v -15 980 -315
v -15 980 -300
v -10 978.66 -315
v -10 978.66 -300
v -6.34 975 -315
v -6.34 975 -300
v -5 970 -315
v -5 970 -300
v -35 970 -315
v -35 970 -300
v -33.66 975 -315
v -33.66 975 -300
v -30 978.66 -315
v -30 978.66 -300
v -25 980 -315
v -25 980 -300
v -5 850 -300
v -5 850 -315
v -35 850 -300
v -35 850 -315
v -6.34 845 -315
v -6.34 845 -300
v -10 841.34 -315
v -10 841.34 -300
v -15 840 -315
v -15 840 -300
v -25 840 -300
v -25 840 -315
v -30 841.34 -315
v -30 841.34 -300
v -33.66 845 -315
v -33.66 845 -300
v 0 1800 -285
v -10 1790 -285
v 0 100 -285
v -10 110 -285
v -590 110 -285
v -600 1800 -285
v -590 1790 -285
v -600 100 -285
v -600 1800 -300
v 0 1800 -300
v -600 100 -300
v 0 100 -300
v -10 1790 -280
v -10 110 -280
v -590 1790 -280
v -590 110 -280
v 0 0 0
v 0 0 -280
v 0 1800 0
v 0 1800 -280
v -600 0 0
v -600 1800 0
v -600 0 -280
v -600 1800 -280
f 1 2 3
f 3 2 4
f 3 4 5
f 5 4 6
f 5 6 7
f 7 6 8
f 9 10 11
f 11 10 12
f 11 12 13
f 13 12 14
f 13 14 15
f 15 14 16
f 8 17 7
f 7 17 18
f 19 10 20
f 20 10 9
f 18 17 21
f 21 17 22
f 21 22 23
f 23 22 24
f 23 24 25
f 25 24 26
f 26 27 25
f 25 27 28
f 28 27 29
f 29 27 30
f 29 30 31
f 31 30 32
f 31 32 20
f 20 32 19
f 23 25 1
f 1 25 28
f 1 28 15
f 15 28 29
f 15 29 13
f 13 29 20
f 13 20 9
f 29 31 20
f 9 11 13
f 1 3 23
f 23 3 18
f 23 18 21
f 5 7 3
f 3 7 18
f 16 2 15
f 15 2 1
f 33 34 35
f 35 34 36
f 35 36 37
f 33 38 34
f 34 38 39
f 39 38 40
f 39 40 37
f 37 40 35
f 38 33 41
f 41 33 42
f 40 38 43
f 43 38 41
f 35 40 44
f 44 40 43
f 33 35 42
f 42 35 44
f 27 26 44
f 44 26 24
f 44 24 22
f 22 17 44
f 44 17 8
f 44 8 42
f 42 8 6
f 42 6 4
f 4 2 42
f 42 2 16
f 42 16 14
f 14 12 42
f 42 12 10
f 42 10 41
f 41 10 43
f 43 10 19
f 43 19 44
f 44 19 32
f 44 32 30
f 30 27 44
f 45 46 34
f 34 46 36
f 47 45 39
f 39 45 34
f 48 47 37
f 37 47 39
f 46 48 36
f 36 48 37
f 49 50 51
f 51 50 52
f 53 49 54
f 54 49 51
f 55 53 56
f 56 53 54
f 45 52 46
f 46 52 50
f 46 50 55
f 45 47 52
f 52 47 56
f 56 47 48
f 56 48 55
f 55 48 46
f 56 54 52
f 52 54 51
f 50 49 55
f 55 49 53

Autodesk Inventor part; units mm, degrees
ref_plane "YZ Plane" through (0, 0, 0) normal (1, 0, 0) x (0, 1, 0)
ref_plane "XZ Plane" through (0, 0, 0) normal (0, 1, 0) x (-1, 0, 0)
ref_plane "XY Plane" through (0, 0, 0) normal (0, 0, 1) x (1, 0, 0)
sketch "Skizze1" plane through (0, 0, 0) normal (0, 1, 0) x (-1, 0, 0)
  line L0 (0, 0) -> (600, 0)
  line L1 (600, 0) -> (600, -280)
  line L2 (600, -280) -> (0, -280)
  line L3 (0, -280) -> (0, 0)
  dimension "d0" = 600
  dimension "d1" = 280
extrude "Extrusion1" add sketch "Skizze1" along normal blind 1800
sketch "Skizze2" plane through (0, 0, -280) normal (0, 0, -1) x (-1, 0, 0)
  line L0 (10, 1790) -> (590, 1790)
  line L1 (590, 1790) -> (590, 110)
  line L2 (590, 110) -> (10, 110)
  line L3 (10, 110) -> (10, 1790)
  line L4 (0, 0) -> (0, 1800) projected
  line L5 (600, 0) -> (600, 1800) projected
  line L6 (0, 1800) -> (600, 1800) projected
  line L7 (0, 0) -> (600, 0) projected
  dimension "d4" = 10
  dimension "d5" = 10
  dimension "d6" = 10
  dimension "d7" = 110
extrude "Extrusion2" add sketch "Skizze2" along normal blind 5 contours L0 L1 L2 L3
sketch "Skizze3" plane through (0, 0, -285) normal (0, 0, -1) x (-1, 0, 0)
  line L0 (0, 0) -> (0, 1800) projected
  line L1 (600, 0) -> (600, 1800) projected
  line L2 (0, 1800) -> (600, 1800)
  line L3 (600, 1800) -> (600, 100)
  line L4 (600, 100) -> (0, 100)
  line L5 (0, 100) -> (0, 1800)
  line L6 (10, 110) -> (590, 110) projected
  point P0 (0, 100)
  dimension "d10" = 10
extrude "Extrusion3" add sketch "Skizze3" along normal blind 15
sketch "Skizze4" plane through (0, 0, -300) normal (0, 0, -1) x (-1, 0, 0)
  line L0 (15, 980) -> (25, 980)
  line L1 (35, 970) -> (35, 850)
  line L2 (25, 840) -> (15, 840)
  line L3 (5, 850) -> (5, 970)
  line L4 (0, 0) -> (600, 0) projected
  line L5 (0, 1800) -> (0, 100) projected
  arc A0 (5, 850) -> (15, 840) centre (15, 850) ccw
  arc A1 (25, 840) -> (35, 850) centre (25, 850) ccw
  arc A2 (35, 970) -> (25, 980) centre (25, 970) ccw
  arc A3 (15, 980) -> (5, 970) centre (15, 970) ccw
  dimension "d13" = 840
  dimension "d14" = 140
  dimension "d15" = 30
  dimension "d16" = 5
  dimension "d17" = 10
extrude "Extrusion4" add sketch "Skizze4" along normal blind 15
equation "\"d5\" = d4"
equation "\"d6\" = d5"
properties part number "Schaltschrank1"
